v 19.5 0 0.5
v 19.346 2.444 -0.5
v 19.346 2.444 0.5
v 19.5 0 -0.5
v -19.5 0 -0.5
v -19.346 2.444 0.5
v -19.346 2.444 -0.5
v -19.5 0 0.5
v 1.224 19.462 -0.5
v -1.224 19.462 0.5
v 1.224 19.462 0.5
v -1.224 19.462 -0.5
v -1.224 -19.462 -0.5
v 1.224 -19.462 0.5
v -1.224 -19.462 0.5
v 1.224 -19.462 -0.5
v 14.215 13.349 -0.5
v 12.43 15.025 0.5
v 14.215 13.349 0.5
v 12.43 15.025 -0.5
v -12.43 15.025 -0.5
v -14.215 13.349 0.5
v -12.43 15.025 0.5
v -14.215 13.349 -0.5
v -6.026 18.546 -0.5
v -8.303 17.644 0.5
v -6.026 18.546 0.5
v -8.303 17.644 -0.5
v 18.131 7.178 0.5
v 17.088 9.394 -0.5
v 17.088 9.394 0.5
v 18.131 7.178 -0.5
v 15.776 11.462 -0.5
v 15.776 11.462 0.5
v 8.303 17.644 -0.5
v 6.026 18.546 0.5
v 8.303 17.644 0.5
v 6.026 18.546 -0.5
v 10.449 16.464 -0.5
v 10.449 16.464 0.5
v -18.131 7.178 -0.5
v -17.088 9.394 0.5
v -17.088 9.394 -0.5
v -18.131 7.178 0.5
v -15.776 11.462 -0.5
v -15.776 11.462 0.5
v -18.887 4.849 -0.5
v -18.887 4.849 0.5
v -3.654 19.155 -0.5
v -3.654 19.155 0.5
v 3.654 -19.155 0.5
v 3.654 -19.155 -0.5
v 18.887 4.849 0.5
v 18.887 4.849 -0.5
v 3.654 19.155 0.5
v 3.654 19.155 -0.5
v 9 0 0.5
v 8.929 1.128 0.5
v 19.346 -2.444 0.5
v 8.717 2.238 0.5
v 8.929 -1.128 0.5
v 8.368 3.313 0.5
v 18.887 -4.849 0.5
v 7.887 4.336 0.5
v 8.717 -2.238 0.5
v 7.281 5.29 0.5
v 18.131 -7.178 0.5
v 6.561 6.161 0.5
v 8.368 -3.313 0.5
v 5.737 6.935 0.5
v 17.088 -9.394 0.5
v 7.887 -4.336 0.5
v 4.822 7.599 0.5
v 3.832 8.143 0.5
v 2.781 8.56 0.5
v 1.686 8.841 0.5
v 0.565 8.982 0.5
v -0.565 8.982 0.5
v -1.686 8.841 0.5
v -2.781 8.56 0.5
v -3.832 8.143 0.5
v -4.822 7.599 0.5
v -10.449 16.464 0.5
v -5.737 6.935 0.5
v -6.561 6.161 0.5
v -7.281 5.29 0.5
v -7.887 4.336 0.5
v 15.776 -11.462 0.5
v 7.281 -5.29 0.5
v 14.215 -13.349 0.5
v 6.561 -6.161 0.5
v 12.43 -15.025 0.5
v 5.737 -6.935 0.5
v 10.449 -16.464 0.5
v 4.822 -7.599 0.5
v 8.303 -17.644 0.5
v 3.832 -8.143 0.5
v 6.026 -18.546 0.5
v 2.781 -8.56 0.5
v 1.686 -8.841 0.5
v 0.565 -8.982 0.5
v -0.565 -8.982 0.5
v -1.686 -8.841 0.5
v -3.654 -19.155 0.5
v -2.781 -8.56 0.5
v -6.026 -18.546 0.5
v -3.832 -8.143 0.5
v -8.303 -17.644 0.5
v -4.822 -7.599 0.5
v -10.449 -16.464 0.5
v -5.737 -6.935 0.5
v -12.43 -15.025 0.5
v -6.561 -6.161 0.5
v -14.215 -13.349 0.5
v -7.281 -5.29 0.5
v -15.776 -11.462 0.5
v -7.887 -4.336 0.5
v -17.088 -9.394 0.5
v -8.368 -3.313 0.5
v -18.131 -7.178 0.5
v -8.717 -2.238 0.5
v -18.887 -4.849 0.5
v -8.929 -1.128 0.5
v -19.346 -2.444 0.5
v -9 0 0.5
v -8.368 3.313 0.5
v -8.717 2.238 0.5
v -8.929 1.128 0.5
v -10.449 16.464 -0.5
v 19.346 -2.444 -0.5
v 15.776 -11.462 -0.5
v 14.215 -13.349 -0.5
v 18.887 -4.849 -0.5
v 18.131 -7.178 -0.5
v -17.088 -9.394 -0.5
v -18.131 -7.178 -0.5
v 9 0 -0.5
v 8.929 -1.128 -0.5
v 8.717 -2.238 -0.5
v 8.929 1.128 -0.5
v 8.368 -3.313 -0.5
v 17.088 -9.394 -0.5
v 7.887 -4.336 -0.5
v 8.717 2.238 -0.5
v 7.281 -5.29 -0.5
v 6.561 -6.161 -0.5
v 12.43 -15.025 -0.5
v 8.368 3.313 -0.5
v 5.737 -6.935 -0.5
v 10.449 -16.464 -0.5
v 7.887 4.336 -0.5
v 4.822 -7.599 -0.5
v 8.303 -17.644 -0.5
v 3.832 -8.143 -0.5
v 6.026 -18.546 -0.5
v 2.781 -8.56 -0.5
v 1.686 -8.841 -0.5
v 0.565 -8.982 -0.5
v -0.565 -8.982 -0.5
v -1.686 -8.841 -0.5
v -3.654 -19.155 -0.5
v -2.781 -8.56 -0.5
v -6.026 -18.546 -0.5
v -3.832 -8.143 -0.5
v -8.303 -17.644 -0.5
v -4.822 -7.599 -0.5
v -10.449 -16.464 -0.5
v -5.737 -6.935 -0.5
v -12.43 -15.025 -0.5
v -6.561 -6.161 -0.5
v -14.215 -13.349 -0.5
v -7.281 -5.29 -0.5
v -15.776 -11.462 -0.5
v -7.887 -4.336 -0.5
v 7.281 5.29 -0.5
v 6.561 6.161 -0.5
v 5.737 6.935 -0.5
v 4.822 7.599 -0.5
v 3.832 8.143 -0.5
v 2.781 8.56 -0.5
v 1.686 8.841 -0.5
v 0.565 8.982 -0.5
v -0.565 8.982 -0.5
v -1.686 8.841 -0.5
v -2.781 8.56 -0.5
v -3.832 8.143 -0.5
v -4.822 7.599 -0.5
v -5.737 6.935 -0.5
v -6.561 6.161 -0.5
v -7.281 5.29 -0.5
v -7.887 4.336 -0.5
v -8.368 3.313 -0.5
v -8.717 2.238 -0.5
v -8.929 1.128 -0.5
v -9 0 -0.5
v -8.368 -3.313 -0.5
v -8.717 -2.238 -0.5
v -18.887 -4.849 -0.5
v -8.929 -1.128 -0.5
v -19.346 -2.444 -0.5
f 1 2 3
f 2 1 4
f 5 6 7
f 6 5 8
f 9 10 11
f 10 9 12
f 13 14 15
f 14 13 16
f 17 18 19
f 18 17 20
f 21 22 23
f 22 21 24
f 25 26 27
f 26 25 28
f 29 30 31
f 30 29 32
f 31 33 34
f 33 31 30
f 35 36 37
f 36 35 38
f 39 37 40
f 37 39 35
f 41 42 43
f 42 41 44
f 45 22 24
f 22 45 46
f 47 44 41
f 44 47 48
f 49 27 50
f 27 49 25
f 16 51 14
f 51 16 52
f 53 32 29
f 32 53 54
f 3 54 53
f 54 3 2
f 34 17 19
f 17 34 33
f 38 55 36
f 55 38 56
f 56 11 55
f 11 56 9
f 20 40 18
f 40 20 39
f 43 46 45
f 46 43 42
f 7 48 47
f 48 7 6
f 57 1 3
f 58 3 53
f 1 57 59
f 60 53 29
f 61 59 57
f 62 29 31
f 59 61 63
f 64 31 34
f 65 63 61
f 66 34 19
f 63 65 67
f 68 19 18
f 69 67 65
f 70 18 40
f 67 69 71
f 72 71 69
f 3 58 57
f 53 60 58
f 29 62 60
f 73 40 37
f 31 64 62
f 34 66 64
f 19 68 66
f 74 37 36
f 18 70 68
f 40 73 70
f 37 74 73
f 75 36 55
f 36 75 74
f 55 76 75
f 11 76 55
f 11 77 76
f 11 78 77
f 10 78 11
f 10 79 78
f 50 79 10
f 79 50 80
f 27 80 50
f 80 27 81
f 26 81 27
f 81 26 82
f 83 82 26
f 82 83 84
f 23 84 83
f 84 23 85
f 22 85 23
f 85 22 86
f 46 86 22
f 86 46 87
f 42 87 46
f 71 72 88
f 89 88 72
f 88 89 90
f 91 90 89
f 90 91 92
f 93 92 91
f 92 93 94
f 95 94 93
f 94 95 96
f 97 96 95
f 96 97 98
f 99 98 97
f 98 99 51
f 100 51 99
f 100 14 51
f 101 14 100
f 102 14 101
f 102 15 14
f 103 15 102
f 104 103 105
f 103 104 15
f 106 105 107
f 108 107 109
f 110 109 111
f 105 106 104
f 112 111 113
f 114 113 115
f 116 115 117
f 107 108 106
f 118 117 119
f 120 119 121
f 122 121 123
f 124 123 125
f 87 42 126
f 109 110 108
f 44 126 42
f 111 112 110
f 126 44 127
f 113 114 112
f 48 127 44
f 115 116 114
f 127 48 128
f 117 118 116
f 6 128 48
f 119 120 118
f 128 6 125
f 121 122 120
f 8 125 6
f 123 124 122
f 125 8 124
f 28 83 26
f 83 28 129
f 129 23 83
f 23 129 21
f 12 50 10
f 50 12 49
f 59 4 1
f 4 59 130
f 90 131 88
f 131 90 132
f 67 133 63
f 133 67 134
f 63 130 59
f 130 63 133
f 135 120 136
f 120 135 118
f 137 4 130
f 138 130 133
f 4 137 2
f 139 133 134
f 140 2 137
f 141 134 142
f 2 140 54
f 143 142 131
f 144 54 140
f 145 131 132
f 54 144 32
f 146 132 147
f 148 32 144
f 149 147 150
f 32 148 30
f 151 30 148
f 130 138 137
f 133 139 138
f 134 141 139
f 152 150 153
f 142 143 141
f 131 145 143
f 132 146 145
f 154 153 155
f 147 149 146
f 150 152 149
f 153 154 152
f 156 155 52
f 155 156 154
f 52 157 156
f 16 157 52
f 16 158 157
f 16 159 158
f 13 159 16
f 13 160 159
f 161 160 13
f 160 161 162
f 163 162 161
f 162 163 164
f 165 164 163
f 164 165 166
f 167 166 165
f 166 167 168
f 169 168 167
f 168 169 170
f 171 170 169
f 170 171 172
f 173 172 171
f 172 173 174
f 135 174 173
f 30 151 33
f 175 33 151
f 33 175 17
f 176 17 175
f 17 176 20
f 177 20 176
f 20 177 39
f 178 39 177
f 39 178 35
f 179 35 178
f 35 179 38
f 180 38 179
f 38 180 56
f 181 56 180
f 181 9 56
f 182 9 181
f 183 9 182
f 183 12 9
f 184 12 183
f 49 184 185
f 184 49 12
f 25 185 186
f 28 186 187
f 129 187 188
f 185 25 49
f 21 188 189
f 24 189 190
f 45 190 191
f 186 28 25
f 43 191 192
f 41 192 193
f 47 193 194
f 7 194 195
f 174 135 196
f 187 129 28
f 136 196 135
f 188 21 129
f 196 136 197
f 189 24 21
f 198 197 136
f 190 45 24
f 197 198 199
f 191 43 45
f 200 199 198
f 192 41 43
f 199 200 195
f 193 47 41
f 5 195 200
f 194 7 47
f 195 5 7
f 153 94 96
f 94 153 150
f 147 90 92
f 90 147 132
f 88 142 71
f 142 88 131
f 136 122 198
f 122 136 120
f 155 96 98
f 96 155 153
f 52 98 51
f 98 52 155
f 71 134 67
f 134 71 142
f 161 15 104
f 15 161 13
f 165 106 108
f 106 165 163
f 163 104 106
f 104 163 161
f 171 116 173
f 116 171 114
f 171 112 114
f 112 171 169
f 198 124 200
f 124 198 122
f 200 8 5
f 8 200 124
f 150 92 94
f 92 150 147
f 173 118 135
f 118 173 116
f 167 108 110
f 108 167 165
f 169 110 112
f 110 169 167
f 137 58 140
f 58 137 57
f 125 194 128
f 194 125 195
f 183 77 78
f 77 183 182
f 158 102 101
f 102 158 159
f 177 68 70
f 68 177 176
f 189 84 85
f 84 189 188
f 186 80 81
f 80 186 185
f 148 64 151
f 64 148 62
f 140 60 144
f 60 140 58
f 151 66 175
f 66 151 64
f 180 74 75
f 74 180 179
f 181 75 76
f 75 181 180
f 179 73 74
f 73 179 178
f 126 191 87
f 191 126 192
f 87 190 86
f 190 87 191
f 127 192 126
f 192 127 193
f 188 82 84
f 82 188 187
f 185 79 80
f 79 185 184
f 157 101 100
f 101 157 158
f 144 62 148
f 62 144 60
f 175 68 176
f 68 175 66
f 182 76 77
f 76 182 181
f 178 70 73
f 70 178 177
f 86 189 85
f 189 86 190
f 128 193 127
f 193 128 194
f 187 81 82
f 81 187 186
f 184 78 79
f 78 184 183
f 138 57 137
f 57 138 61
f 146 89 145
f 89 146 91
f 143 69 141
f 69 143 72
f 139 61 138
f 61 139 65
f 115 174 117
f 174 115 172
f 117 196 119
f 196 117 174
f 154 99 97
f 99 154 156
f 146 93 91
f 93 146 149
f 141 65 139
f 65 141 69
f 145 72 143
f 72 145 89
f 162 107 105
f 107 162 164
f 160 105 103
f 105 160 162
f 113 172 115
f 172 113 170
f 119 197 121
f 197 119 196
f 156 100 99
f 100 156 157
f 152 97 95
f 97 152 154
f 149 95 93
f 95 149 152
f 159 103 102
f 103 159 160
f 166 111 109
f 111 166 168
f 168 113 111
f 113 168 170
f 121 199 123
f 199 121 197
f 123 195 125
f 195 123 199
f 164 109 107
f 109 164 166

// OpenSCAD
$fn = 50;


difference() {
	union() {
		translate(v = [0, 0, -0.5000000000]) {
			cylinder(h = 1, r = 19.5000000000);
		}
	}
	union() {
		translate(v = [0, 0, -100.0000000000]) {
			cylinder(h = 200, r = 9);
		}
	}
}
